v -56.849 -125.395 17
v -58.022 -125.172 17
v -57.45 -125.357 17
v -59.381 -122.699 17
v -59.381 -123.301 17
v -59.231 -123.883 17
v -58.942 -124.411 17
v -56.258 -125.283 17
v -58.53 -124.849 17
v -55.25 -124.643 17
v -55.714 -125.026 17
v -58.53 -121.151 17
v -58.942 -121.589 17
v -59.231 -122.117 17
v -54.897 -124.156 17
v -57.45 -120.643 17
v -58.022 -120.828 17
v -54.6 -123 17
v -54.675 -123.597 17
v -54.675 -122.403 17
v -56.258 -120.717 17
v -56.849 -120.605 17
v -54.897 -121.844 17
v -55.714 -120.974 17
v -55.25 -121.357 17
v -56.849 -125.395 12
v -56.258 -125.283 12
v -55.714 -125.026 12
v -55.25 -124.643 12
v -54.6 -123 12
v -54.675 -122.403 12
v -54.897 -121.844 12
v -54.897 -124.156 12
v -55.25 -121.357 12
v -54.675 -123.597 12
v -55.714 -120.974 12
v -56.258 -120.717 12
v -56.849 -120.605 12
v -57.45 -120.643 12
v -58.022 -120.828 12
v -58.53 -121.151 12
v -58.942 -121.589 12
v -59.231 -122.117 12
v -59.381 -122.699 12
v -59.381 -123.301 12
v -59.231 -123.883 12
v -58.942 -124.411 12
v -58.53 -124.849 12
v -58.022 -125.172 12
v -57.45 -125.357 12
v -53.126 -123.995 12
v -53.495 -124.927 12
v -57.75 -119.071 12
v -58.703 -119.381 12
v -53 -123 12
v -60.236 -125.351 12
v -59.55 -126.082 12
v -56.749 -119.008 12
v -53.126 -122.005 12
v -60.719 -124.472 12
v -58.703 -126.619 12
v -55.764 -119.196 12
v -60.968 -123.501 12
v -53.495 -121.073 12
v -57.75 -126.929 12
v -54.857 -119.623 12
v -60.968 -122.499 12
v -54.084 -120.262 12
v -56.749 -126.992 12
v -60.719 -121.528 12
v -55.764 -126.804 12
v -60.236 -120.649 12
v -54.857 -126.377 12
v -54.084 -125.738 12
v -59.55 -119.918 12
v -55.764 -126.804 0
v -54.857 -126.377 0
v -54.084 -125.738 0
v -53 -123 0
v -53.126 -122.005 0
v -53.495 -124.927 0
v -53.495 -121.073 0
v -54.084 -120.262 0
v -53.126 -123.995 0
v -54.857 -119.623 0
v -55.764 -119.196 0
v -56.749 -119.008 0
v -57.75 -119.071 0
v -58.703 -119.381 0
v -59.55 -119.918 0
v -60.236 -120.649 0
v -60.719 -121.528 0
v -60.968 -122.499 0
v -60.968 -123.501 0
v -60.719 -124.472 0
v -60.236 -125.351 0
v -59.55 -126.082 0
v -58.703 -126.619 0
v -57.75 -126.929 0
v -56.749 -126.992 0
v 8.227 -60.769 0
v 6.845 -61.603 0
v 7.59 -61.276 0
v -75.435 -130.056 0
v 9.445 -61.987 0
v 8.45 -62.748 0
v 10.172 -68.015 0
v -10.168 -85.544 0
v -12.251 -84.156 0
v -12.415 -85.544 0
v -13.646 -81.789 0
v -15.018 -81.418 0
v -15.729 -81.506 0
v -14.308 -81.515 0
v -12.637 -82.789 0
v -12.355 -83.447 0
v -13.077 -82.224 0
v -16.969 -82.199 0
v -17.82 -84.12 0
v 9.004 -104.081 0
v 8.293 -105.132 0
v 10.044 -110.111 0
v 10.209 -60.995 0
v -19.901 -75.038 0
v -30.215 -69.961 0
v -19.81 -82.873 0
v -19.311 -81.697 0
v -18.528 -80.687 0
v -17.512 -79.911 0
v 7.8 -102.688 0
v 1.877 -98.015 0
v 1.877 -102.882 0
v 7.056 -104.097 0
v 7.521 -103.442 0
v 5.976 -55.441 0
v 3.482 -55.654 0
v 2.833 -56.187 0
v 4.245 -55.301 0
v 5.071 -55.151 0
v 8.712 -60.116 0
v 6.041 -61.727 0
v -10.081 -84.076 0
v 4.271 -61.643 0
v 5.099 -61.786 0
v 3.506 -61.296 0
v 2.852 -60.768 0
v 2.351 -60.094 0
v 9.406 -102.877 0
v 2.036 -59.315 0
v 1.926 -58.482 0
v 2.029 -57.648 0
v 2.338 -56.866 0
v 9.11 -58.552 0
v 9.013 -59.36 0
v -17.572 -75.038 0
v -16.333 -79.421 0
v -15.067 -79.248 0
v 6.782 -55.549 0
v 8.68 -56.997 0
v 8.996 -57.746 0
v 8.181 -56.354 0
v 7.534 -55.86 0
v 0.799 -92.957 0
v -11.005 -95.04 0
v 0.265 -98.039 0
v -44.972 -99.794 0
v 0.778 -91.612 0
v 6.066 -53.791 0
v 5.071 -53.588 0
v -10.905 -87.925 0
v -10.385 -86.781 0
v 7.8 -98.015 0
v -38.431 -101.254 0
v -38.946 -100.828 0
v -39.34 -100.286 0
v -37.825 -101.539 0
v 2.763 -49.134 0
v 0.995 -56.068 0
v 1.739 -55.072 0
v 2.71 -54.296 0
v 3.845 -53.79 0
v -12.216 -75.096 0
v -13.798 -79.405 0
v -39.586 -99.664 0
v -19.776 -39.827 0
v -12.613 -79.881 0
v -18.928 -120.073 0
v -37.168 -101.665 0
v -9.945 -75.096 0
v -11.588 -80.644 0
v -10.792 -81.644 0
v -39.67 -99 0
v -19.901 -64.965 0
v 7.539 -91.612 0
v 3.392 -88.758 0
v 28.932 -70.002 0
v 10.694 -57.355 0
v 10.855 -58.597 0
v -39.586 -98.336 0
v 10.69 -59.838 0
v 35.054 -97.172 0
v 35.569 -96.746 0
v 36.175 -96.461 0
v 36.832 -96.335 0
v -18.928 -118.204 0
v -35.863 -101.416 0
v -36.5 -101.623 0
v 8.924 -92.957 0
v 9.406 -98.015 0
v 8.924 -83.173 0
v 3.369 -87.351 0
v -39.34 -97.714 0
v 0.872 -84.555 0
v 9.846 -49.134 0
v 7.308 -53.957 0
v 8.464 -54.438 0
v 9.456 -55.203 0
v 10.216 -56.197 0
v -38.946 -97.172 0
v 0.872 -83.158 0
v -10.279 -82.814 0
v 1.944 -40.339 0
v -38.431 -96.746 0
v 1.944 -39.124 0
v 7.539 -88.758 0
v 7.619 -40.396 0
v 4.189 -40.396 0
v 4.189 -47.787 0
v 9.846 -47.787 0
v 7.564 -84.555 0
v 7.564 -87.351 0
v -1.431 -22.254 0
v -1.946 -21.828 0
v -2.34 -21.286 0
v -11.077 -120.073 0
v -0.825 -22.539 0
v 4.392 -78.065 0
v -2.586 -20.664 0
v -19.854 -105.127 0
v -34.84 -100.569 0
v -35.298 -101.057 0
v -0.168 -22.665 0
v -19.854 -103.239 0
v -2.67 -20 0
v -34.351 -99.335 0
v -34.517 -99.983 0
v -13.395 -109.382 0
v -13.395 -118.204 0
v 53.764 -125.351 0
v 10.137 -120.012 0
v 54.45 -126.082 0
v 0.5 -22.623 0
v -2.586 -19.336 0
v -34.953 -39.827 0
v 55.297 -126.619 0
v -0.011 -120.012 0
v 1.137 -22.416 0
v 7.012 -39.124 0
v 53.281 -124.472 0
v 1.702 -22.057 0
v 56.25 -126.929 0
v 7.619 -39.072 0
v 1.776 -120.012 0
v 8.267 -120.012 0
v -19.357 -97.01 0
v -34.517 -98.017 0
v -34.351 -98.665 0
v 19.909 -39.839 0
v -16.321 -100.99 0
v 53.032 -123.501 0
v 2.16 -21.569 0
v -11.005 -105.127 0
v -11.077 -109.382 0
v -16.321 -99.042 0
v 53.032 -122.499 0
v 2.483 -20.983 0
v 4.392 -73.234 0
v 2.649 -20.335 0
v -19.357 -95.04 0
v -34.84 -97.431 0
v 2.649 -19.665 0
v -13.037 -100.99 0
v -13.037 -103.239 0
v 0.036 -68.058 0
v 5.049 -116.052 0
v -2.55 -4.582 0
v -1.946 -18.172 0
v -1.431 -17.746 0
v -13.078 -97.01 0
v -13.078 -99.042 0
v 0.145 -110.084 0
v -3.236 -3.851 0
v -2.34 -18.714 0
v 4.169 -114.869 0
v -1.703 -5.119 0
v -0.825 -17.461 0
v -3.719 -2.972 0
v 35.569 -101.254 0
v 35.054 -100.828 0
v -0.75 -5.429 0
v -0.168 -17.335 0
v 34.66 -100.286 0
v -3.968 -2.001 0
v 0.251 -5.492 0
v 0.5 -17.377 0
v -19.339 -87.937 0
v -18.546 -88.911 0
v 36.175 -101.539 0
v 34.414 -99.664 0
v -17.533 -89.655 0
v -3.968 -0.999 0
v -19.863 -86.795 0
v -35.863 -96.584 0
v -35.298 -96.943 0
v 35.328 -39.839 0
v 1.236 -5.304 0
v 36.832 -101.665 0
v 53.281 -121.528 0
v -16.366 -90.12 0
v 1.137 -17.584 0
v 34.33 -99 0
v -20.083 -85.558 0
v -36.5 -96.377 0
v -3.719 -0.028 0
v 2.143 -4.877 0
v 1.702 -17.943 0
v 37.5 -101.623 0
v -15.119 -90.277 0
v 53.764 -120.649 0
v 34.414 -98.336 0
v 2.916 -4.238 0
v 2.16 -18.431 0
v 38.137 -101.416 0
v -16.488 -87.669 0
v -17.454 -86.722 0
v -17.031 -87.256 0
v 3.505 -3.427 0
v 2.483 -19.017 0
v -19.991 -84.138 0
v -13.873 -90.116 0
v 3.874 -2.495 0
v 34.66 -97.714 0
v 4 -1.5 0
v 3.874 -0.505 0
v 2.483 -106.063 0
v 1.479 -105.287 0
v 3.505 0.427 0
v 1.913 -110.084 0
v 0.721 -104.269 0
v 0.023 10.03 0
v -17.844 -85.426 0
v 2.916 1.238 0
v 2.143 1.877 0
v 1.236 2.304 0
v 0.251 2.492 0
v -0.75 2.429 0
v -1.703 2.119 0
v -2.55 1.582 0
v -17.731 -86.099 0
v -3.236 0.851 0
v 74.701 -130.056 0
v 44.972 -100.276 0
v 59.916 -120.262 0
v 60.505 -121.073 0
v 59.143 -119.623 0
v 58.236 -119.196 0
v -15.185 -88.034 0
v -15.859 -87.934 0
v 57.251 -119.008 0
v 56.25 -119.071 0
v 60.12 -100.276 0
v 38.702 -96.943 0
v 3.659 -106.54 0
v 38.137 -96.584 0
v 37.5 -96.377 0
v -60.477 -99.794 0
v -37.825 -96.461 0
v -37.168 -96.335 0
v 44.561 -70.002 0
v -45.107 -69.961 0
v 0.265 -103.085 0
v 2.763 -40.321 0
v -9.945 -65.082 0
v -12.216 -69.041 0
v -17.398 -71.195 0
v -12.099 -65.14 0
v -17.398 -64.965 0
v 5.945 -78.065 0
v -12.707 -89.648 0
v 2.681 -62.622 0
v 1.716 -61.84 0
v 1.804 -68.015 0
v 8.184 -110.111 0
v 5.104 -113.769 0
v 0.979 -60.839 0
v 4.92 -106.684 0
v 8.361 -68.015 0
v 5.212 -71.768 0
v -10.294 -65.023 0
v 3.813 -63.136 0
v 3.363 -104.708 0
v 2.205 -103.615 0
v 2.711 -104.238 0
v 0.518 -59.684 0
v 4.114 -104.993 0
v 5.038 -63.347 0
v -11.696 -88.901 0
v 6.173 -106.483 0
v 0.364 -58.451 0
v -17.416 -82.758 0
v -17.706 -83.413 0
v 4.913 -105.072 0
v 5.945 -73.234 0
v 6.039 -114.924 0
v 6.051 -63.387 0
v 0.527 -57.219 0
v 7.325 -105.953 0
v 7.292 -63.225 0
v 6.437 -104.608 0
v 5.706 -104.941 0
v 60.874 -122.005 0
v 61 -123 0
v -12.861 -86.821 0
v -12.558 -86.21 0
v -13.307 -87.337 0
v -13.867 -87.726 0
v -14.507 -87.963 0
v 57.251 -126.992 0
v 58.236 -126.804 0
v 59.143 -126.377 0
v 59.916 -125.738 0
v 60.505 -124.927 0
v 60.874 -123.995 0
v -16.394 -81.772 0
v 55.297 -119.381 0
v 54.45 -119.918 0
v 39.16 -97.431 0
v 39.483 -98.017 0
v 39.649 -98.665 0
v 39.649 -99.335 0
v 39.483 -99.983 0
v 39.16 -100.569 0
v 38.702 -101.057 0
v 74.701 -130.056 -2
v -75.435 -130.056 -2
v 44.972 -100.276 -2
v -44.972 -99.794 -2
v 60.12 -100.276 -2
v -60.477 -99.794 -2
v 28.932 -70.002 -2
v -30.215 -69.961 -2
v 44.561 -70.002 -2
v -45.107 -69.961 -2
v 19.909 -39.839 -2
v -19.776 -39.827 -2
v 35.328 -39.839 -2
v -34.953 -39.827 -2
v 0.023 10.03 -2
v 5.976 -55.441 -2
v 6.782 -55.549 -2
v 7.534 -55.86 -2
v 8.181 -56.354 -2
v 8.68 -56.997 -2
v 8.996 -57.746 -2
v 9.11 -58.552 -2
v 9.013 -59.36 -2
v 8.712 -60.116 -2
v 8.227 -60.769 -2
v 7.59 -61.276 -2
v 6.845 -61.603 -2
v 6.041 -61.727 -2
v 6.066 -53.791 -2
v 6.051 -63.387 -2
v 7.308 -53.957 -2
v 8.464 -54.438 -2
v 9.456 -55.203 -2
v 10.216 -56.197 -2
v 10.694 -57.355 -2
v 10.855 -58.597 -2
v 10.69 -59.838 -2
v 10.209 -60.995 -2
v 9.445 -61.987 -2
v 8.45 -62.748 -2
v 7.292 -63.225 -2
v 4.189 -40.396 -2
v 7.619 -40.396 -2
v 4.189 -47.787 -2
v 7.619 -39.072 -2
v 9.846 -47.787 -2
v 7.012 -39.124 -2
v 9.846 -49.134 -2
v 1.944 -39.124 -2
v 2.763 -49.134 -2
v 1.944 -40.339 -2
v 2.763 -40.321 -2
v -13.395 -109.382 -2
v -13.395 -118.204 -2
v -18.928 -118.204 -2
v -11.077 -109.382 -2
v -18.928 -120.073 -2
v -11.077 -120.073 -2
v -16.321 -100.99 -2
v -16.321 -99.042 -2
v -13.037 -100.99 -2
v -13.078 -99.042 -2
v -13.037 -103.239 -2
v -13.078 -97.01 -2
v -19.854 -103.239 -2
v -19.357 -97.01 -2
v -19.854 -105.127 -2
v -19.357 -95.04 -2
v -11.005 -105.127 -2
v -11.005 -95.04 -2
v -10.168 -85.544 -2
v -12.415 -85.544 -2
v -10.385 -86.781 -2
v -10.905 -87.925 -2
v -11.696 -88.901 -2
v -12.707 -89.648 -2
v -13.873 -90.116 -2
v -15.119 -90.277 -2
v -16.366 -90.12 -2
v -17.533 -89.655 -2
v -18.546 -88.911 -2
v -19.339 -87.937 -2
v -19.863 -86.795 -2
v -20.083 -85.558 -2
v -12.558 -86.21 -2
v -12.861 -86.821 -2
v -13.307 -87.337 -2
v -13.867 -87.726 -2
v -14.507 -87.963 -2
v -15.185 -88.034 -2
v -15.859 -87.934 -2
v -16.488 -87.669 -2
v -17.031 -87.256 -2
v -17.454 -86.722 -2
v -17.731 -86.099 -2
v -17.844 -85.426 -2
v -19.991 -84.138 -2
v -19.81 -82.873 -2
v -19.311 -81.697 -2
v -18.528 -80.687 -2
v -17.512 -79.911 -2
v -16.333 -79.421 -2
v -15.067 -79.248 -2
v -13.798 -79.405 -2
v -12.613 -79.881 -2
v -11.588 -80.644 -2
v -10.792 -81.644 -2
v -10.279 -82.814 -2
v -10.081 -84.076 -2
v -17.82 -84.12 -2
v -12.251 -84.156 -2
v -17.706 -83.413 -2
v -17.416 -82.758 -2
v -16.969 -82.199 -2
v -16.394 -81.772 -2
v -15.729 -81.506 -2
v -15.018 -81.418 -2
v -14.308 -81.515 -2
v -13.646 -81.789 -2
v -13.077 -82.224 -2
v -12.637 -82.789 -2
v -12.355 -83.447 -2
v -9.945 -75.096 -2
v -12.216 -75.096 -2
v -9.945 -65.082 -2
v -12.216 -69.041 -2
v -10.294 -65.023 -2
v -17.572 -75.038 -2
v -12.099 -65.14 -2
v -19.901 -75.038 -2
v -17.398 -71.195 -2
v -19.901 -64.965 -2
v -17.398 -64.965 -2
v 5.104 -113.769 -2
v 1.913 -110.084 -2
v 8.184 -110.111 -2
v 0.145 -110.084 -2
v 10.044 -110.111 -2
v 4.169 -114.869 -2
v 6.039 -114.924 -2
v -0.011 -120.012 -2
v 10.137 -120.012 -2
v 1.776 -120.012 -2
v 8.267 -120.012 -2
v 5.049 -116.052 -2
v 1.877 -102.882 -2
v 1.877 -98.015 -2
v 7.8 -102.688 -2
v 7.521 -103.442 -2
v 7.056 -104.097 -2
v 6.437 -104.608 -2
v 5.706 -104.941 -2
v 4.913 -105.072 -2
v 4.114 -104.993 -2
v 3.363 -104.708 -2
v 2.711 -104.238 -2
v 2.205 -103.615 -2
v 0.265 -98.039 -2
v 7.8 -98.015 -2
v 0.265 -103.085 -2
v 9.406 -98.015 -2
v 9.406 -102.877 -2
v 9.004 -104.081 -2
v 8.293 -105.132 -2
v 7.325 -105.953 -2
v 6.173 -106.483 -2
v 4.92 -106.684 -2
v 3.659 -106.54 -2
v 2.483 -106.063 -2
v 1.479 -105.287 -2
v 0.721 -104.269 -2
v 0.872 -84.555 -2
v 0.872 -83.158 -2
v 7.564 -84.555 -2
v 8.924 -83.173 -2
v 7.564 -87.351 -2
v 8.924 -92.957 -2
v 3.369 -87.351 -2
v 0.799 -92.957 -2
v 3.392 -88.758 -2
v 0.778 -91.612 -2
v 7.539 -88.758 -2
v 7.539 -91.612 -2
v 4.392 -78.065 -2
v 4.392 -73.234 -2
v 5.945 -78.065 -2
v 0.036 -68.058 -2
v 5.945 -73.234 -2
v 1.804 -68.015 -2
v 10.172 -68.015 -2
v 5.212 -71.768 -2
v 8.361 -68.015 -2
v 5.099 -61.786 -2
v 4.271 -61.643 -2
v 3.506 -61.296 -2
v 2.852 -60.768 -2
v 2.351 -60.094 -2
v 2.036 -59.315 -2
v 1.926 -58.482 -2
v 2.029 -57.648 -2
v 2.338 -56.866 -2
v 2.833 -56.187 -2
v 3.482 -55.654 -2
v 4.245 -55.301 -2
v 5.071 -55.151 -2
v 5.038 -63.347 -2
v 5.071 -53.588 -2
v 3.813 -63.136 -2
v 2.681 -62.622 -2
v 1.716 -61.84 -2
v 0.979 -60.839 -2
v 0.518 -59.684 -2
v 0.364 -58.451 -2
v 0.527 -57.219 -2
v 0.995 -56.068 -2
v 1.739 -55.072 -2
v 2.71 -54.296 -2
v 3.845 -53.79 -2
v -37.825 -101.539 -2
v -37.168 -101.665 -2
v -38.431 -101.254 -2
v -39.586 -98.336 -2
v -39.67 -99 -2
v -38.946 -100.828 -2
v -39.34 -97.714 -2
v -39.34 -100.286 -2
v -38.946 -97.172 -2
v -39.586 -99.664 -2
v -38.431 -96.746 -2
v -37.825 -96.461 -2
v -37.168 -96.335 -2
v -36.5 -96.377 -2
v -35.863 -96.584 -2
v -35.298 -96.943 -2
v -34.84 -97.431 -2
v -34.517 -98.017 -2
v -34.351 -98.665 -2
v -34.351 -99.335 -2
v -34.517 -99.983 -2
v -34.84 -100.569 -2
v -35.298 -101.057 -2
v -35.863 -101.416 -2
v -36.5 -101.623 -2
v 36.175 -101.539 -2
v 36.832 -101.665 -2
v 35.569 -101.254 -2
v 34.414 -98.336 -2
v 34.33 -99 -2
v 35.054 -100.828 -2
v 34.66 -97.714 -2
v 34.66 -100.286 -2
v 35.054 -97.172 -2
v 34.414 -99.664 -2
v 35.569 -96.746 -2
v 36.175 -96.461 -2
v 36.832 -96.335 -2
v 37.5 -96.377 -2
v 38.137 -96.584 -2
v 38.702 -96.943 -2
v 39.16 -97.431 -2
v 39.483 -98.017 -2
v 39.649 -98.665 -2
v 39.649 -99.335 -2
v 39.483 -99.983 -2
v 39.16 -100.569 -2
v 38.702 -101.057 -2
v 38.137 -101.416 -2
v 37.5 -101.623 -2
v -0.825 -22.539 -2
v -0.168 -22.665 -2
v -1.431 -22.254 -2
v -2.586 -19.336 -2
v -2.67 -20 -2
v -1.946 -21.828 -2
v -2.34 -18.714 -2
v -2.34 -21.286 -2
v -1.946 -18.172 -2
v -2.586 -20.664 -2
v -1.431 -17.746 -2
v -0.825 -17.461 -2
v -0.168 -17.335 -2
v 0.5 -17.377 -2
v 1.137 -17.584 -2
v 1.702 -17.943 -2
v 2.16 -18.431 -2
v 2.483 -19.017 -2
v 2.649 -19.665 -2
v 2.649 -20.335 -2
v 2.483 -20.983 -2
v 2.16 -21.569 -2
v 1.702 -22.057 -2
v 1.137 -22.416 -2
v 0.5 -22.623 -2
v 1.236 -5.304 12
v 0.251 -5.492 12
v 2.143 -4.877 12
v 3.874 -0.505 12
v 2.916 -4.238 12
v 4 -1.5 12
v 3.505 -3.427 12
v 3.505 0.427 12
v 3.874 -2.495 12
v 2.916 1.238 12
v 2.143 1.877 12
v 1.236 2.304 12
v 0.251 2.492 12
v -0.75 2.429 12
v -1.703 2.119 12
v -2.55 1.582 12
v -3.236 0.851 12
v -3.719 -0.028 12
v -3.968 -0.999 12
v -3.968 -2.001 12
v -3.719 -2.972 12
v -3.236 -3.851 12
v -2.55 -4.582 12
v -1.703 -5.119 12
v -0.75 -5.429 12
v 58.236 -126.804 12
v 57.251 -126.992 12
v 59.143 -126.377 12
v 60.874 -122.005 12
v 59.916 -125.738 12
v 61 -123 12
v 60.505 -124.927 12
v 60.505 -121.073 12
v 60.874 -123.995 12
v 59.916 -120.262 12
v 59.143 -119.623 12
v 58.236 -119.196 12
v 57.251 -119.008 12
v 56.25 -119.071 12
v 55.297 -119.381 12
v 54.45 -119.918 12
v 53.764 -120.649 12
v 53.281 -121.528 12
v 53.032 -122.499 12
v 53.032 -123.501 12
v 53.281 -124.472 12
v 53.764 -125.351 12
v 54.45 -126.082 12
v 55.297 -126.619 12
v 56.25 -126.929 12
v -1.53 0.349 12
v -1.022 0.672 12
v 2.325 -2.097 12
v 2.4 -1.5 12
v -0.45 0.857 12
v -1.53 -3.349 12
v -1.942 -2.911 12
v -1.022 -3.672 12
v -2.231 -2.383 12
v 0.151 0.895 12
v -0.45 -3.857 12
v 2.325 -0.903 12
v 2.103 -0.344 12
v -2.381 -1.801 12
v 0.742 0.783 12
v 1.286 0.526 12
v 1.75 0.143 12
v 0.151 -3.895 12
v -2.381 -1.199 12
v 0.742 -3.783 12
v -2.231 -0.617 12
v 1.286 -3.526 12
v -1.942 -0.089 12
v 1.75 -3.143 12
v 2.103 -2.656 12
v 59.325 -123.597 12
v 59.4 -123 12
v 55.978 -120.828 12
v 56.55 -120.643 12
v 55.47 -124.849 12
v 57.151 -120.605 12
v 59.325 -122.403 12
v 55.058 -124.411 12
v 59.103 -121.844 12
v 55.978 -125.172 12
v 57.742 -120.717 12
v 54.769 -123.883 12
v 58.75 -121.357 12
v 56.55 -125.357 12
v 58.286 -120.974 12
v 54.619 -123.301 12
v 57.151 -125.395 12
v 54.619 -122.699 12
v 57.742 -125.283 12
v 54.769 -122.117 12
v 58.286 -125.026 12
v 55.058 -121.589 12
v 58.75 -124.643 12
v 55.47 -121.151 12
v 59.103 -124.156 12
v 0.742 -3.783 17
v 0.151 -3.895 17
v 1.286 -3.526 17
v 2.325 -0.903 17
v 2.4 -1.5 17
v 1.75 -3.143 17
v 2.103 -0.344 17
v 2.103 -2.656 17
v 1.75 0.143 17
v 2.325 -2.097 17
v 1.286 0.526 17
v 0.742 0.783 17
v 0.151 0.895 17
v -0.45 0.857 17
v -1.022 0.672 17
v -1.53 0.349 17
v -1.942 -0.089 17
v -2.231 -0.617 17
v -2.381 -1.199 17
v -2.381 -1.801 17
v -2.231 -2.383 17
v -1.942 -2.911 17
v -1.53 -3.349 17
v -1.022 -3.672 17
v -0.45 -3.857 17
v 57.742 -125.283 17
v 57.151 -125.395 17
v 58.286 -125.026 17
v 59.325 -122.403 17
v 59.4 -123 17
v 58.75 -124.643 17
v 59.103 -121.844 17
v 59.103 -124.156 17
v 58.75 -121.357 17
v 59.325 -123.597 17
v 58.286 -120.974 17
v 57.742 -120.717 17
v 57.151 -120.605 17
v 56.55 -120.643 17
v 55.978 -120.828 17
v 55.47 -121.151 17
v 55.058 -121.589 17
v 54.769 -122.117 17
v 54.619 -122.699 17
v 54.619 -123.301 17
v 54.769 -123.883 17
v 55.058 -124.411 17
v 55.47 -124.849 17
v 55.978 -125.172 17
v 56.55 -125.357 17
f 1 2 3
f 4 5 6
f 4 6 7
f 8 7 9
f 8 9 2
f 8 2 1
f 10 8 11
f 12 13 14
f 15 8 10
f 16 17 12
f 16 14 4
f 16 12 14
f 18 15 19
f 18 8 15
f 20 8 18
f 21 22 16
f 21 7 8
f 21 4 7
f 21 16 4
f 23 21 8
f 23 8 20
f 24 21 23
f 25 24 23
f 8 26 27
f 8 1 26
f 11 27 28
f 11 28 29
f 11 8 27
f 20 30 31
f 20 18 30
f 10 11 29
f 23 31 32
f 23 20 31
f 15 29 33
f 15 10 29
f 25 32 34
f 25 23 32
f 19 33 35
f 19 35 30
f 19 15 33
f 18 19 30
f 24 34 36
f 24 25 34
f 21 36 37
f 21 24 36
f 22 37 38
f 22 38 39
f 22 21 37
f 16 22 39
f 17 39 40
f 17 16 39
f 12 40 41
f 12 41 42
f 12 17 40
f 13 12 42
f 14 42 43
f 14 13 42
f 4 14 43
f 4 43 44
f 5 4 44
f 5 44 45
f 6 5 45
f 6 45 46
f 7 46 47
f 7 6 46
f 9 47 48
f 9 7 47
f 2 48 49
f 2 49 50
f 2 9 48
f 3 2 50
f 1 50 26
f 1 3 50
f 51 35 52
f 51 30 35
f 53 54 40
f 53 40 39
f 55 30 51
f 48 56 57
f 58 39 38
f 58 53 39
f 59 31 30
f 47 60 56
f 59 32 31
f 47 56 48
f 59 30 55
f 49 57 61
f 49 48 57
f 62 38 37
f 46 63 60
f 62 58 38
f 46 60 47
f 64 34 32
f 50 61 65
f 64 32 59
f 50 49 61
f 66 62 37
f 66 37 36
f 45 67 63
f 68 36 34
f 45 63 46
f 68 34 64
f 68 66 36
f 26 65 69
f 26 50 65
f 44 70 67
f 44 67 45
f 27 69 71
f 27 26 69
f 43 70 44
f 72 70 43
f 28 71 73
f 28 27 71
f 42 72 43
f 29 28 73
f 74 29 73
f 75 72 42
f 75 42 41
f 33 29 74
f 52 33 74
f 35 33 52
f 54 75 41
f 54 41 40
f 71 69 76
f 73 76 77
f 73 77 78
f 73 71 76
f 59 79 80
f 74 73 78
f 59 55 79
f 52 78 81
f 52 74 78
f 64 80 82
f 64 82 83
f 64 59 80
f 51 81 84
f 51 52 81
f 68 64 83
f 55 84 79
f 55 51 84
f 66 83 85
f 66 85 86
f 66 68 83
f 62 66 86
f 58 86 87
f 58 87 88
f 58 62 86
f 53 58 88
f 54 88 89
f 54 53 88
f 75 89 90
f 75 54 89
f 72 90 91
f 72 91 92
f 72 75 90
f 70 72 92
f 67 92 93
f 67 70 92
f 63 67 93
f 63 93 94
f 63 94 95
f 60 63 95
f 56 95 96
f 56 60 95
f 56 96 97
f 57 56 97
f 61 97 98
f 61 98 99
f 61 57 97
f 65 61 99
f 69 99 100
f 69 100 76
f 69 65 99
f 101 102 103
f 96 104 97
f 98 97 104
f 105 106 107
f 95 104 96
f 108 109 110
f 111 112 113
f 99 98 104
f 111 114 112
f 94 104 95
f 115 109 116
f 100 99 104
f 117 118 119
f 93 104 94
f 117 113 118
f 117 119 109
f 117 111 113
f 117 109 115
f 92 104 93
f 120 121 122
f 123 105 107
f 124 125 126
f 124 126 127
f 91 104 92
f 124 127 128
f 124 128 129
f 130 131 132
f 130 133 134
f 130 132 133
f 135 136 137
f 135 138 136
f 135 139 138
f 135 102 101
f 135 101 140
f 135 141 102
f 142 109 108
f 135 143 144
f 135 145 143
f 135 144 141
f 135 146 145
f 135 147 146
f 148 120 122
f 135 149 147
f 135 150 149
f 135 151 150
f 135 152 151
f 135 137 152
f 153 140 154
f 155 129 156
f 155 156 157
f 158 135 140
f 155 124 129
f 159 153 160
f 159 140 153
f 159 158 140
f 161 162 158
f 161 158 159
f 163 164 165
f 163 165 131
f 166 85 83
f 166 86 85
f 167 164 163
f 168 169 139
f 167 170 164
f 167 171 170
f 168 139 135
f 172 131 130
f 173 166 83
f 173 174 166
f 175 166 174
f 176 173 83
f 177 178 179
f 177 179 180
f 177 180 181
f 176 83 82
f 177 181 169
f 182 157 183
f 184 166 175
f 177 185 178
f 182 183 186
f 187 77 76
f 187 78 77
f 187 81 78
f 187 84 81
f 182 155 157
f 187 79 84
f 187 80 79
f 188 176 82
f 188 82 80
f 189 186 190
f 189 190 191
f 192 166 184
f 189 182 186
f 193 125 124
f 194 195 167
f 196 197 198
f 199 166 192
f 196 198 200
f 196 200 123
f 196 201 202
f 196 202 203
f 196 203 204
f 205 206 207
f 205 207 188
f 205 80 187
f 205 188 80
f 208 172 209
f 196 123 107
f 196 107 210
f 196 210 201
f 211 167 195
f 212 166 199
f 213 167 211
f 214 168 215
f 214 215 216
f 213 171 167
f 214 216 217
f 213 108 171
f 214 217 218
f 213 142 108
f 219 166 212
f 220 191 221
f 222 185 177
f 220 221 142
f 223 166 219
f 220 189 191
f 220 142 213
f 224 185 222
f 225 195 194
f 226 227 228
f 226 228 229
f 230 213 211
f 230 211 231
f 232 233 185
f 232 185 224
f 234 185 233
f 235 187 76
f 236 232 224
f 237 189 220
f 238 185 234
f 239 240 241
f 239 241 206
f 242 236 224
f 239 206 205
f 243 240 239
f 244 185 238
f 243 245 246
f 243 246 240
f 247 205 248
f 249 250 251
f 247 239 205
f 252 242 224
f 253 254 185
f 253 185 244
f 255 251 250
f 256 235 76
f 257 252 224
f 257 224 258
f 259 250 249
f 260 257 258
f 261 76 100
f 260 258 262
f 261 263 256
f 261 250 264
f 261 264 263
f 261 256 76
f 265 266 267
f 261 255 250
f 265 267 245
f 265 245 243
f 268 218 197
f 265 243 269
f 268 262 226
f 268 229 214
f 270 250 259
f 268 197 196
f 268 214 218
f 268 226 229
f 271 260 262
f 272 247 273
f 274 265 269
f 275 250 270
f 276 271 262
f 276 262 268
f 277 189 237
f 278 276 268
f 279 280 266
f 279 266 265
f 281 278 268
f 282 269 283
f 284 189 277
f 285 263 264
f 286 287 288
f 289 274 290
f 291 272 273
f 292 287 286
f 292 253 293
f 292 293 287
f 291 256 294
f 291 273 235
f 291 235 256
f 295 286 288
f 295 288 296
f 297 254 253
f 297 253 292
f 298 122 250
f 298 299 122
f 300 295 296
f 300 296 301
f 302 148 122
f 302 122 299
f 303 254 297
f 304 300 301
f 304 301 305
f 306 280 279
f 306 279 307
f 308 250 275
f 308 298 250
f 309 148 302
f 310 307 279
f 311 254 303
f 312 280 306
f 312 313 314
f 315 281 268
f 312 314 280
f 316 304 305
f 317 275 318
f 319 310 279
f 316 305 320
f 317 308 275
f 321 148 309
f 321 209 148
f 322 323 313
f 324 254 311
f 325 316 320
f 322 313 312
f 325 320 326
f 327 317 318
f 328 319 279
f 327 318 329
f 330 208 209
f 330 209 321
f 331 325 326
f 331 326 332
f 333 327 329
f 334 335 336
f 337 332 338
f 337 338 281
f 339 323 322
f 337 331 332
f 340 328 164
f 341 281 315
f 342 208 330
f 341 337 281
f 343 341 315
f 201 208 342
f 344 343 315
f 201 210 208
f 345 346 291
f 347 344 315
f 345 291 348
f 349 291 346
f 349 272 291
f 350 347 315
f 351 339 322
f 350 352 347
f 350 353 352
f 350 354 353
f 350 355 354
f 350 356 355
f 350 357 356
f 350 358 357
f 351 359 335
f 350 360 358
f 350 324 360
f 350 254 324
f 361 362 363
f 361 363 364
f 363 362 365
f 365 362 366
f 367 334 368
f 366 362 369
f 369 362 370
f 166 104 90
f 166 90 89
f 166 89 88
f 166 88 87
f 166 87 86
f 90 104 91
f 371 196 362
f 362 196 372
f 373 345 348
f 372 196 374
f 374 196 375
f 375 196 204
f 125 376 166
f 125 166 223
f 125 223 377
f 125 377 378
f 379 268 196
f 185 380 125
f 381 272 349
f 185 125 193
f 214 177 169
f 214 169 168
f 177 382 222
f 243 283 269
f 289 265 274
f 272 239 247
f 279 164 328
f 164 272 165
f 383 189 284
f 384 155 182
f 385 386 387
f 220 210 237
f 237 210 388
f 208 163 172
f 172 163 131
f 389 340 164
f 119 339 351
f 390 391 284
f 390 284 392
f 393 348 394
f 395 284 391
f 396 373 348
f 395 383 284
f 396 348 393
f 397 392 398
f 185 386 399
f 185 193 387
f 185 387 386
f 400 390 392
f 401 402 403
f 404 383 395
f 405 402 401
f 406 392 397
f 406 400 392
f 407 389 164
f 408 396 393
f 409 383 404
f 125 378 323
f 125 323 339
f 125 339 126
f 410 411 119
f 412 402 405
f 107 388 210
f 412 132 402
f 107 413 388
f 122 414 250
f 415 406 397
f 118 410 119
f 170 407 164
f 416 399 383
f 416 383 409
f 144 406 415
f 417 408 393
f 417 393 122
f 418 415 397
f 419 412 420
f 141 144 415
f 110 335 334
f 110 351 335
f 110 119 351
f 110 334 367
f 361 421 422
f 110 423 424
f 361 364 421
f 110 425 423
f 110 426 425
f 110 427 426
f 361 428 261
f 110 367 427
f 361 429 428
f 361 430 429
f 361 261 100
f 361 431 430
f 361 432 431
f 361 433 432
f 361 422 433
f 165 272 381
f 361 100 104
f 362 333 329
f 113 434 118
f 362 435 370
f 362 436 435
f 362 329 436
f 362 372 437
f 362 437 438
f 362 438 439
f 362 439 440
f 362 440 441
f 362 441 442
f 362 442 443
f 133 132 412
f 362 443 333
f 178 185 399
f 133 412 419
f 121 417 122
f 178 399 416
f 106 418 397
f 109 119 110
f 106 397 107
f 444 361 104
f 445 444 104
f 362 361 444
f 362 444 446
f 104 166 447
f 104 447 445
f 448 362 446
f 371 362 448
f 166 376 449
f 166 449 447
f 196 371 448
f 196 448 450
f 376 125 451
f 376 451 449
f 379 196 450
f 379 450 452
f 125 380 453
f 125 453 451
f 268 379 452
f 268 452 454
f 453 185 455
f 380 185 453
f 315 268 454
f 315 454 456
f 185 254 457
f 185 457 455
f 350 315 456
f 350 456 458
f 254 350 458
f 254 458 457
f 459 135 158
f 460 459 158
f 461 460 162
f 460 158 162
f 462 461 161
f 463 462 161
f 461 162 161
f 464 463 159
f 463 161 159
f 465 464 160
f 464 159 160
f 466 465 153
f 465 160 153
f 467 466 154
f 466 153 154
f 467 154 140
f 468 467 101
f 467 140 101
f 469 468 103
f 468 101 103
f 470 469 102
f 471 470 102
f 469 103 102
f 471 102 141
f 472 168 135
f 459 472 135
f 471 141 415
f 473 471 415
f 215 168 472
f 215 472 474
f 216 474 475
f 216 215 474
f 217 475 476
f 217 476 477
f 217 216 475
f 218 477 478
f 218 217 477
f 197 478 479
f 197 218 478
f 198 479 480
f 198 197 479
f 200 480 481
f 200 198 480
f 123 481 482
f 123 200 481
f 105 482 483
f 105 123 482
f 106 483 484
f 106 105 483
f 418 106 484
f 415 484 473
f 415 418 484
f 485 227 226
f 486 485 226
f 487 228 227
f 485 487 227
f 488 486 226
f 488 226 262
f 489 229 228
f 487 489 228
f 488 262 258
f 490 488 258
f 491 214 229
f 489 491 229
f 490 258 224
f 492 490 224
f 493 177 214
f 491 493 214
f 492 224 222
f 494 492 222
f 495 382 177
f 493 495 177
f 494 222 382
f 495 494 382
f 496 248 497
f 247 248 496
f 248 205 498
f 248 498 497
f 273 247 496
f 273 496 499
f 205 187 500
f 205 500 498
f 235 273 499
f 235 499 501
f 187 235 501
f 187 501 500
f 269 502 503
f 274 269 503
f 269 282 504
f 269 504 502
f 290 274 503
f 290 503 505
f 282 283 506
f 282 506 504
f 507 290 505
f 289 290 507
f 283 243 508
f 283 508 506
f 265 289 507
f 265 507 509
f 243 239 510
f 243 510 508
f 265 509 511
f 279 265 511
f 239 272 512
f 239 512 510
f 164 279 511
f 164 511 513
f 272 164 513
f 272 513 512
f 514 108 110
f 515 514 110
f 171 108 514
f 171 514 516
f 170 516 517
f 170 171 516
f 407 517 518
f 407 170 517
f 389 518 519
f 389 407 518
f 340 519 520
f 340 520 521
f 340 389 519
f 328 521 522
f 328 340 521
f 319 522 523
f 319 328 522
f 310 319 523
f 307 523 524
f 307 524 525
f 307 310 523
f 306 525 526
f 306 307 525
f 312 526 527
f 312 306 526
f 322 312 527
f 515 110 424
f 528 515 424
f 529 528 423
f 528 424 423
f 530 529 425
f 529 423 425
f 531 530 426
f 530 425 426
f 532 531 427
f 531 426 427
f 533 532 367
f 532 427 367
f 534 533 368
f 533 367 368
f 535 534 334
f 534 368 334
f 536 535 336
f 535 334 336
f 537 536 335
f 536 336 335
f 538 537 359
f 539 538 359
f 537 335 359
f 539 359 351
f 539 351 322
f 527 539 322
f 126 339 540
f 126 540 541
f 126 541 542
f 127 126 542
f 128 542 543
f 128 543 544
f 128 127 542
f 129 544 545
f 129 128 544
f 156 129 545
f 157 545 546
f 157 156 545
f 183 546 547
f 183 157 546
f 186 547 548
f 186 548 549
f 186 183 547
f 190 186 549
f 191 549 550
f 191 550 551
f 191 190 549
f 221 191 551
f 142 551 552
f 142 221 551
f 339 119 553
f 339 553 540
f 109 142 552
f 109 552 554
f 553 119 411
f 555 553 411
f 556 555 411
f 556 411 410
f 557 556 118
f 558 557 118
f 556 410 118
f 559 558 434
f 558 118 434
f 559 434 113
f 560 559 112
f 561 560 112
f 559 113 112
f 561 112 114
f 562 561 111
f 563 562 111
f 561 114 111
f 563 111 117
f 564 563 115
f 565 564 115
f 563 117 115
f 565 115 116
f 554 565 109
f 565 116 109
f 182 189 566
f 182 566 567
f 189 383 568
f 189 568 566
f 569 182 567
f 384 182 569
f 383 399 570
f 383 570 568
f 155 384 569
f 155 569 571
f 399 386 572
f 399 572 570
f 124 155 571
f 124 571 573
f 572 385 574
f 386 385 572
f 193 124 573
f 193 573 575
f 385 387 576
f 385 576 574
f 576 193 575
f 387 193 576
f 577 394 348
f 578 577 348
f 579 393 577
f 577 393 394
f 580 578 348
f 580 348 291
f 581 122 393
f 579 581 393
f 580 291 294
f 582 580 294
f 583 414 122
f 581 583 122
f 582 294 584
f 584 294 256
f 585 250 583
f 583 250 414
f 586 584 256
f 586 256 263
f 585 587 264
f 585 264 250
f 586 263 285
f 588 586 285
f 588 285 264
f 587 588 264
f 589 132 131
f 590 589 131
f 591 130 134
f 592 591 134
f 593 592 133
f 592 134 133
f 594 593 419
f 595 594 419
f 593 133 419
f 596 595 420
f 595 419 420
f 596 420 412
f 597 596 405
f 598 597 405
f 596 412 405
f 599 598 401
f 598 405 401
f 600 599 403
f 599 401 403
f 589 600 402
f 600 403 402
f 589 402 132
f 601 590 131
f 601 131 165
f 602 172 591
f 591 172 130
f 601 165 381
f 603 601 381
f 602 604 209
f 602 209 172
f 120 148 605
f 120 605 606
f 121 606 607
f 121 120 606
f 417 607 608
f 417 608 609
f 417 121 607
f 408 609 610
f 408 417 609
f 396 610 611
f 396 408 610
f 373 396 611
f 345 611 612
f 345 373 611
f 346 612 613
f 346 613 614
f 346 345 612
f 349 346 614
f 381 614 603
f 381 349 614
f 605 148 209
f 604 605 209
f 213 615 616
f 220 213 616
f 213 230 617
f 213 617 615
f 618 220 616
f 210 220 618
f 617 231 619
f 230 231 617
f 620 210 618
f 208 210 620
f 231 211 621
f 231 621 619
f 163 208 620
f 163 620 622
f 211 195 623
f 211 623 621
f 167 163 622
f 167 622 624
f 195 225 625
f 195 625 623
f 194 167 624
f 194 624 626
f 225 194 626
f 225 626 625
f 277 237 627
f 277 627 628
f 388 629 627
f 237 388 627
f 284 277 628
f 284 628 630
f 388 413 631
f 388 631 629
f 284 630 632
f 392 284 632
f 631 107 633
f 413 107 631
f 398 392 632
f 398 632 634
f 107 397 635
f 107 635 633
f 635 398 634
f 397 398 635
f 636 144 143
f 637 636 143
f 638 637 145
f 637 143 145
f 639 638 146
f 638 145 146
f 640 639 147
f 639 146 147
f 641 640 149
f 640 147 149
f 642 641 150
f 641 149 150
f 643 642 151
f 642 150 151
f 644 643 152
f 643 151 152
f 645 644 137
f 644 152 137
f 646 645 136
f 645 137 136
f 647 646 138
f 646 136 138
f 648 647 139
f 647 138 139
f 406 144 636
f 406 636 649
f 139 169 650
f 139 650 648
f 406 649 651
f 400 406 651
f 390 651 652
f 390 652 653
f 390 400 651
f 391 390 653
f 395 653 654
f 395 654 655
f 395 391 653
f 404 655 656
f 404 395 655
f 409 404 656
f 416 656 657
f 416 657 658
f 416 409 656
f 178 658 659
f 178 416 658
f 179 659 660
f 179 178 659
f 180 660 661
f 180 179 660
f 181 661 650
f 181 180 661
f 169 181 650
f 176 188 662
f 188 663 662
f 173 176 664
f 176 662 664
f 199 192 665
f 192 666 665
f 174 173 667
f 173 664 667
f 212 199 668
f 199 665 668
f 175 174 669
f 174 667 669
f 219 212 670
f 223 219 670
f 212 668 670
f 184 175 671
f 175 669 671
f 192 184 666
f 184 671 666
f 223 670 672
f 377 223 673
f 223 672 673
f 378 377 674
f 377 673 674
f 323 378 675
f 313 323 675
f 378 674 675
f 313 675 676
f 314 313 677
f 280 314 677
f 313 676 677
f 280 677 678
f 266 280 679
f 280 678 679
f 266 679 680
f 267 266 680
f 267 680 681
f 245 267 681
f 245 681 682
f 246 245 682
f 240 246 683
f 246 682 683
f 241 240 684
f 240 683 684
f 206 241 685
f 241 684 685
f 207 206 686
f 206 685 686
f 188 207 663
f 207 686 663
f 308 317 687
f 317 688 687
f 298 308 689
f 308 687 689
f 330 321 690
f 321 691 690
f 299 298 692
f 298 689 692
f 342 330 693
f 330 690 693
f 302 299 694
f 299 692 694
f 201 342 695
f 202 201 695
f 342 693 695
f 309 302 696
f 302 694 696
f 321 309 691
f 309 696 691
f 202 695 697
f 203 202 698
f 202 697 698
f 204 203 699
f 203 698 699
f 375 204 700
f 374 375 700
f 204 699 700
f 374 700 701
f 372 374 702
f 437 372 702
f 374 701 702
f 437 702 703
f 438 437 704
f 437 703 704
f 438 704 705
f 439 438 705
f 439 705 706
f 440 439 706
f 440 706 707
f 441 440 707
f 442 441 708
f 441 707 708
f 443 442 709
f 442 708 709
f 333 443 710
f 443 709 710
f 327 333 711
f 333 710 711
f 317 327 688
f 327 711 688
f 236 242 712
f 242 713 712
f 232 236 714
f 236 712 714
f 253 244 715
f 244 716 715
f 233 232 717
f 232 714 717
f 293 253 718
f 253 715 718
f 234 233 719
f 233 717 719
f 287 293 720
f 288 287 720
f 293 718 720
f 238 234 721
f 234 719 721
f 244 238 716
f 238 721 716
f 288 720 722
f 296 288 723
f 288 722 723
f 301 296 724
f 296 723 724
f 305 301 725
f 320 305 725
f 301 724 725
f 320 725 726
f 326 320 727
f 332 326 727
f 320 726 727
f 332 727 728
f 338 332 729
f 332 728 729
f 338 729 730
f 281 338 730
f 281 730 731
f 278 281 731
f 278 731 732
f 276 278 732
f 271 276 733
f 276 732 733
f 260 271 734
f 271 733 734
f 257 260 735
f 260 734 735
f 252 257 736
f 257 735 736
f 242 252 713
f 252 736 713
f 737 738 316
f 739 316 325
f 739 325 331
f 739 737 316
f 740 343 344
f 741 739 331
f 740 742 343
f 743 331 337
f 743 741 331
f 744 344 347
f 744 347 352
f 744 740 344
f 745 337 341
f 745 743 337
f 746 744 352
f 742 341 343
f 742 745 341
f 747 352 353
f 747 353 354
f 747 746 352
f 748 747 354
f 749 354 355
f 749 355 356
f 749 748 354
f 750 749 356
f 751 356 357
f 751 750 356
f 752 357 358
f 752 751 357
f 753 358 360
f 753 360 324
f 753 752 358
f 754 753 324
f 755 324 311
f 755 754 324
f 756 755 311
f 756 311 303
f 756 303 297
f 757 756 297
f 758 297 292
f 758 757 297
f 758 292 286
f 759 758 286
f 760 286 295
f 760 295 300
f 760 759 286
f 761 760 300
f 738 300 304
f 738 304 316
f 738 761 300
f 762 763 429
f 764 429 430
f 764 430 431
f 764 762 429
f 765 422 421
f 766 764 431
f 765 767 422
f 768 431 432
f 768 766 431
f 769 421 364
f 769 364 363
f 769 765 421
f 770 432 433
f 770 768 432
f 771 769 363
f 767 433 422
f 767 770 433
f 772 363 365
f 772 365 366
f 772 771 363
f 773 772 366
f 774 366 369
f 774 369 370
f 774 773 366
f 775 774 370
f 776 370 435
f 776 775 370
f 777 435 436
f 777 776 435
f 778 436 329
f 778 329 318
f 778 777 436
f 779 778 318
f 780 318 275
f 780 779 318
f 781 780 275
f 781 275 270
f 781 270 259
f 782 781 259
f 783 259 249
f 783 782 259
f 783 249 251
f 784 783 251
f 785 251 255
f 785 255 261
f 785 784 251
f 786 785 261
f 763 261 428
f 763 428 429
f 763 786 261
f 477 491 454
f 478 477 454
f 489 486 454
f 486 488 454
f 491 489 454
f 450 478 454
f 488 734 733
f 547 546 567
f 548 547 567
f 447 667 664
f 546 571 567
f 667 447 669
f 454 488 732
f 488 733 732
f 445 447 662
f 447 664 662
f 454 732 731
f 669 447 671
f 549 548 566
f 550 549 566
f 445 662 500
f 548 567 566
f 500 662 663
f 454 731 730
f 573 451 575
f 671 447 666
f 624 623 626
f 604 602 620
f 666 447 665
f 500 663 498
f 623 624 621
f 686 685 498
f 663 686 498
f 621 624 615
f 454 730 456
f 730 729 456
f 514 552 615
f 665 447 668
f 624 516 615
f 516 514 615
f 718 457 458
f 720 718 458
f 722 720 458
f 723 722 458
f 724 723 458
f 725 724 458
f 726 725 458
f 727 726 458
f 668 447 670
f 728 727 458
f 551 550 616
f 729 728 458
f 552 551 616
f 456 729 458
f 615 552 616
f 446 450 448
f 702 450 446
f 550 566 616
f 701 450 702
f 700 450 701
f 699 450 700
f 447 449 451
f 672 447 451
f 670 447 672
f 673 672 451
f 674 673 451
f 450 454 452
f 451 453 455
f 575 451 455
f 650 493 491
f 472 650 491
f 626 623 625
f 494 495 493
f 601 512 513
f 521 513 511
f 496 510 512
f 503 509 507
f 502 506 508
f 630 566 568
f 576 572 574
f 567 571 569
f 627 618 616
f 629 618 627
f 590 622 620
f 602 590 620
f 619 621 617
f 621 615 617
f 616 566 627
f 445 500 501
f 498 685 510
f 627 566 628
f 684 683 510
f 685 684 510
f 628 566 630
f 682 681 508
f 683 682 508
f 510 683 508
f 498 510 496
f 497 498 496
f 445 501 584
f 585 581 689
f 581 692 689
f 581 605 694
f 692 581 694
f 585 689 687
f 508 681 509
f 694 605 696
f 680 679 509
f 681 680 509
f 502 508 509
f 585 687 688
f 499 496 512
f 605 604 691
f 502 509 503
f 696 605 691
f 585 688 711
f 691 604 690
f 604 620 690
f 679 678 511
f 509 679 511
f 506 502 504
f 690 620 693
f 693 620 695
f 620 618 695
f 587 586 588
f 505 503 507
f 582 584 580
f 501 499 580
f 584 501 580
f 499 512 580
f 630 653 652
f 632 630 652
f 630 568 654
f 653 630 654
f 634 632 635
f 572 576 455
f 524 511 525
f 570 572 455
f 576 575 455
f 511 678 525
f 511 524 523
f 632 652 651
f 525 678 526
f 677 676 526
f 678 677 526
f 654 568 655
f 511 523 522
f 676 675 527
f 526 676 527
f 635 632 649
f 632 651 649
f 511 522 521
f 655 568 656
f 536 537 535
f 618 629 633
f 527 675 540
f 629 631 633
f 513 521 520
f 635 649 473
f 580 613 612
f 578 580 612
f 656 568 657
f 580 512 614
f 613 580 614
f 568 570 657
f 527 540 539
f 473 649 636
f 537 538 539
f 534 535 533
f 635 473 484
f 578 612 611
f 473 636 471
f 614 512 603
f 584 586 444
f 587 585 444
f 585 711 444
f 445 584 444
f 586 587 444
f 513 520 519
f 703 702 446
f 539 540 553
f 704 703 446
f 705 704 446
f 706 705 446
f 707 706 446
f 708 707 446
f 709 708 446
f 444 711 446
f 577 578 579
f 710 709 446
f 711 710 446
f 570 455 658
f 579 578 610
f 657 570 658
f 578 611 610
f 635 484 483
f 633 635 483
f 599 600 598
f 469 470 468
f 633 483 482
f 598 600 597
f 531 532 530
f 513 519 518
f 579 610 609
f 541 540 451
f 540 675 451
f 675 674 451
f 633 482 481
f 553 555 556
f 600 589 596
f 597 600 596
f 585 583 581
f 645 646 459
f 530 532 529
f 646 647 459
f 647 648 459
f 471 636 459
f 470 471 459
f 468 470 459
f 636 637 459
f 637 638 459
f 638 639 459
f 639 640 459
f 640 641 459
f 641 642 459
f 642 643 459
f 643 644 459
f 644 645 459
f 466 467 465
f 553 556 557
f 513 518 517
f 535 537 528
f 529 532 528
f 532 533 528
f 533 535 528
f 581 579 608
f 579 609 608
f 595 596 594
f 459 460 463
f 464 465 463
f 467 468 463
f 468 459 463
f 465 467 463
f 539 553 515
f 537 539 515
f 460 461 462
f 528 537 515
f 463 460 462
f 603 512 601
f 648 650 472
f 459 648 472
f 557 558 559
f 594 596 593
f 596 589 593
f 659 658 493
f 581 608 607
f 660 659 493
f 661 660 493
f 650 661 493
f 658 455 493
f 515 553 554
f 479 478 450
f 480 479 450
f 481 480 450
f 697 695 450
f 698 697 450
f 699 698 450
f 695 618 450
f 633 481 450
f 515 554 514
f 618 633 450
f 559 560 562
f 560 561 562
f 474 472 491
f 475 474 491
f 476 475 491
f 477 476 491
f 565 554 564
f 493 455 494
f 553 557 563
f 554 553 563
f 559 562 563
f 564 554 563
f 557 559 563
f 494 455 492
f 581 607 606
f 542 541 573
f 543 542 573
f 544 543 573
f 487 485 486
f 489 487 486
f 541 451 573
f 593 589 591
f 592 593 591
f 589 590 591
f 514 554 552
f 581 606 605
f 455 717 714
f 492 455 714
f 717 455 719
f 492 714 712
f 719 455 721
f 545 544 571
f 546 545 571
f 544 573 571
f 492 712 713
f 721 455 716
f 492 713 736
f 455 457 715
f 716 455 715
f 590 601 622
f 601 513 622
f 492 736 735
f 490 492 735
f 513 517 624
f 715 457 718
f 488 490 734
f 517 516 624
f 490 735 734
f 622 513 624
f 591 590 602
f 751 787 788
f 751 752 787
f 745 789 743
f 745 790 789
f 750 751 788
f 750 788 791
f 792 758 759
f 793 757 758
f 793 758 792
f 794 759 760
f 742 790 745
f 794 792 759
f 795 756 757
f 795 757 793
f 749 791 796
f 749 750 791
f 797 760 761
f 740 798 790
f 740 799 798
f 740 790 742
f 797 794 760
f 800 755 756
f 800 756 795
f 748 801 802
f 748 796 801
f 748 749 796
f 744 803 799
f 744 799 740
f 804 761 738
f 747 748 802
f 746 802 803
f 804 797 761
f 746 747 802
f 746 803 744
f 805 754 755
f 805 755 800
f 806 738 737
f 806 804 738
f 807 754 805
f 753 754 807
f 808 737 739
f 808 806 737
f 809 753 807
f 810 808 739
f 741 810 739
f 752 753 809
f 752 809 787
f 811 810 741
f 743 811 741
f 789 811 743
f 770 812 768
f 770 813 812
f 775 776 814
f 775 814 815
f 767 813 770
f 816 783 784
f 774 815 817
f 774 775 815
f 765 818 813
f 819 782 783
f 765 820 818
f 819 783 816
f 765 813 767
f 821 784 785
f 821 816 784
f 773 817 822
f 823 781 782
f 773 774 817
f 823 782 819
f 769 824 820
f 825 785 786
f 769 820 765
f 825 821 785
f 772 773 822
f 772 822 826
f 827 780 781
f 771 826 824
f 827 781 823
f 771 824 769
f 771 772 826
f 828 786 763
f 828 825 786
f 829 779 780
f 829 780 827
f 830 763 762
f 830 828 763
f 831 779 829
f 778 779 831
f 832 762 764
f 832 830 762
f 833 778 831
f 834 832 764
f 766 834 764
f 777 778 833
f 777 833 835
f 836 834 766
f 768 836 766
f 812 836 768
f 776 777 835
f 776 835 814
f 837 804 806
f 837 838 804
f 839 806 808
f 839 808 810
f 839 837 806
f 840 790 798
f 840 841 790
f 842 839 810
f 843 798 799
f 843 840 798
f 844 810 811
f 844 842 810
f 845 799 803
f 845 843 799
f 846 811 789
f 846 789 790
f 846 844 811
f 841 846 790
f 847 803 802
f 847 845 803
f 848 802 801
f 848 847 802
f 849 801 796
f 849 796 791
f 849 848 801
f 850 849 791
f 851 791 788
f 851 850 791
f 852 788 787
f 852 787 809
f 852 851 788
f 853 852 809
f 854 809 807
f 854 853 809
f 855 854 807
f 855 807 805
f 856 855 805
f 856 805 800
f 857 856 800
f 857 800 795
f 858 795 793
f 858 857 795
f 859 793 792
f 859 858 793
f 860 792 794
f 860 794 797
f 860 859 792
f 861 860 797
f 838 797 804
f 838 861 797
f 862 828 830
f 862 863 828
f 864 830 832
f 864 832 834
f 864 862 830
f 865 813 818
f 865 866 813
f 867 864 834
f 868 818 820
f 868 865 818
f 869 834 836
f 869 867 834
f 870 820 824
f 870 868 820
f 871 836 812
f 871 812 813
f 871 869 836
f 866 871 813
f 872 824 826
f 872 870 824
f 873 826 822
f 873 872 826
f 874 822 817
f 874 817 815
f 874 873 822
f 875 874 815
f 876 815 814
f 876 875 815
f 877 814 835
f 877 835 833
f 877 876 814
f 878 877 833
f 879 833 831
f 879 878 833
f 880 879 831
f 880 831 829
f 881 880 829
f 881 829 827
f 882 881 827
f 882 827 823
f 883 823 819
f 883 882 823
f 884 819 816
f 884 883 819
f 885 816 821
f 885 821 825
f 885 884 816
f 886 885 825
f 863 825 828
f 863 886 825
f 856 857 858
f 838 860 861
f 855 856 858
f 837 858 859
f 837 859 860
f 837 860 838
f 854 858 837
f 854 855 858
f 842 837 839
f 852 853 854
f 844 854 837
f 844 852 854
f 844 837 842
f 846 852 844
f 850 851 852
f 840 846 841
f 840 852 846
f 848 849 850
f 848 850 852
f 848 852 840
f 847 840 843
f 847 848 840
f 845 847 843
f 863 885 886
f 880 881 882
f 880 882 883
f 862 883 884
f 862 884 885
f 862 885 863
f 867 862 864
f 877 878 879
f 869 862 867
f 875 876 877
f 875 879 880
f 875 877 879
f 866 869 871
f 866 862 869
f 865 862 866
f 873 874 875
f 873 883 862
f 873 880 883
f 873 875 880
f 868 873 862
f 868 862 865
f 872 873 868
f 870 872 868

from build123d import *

# Parameters (mm, degrees)
CYLINDER006_R          = 2.4
CYLINDER006_DEPTH      = 7
CYLINDER004_R          = 4
CYLINDER004_DEPTH      = 12
CYLINDER007_R          = 2.4
CYLINDER007_DEPTH      = 7
CYLINDER005_R          = 4
CYLINDER005_DEPTH      = 12
CYLINDER_R             = 2.67
CYLINDER_DEPTH         = 2
CYLINDER001_R          = 2.67
CYLINDER001_DEPTH      = 2
CYLINDER002_R          = 2.67
CYLINDER002_DEPTH      = 2
PAD005_DEPTH           = 2
PAD006_DEPTH           = 2
PAD007_DEPTH           = 2
PAD008_DEPTH           = 2
PAD009_DEPTH           = 2
PAD010_DEPTH           = 2
PAD011_DEPTH           = 2
PAD013_DEPTH           = 2
PAD014_DEPTH           = 2
PAD015_DEPTH           = 2
PAD001_DEPTH           = 2
PAD004_DEPTH           = 2
PAD_DEPTH              = 2
CUT014_PLACEMENT_ANGLE = 180
CYLINDER003_R          = 4
CYLINDER003_DEPTH      = 12
CYLINDER008_R          = 2.4
CYLINDER008_DEPTH      = 7


with BuildPart() as cylindre006:
    # Cylinder006 → Cylinder006 (new body)
    with BuildSketch(Plane.XY.offset(10)):
        Circle(CYLINDER006_R)
    extrude(amount=CYLINDER006_DEPTH)


with BuildPart() as fixdroite:
    # Cylinder004 → Cylinder004 (new body)
    with BuildSketch(Plane.XY):
        Circle(CYLINDER004_R)
    extrude(amount=CYLINDER004_DEPTH)

    # Fusion001: union Cylindre006
    add(cylindre006.part)


with BuildPart() as fixdroite_1:
    # Fusion001 placement: moved
    add(fixdroite.part.moved(Location((57, -123, 0))))


with BuildPart() as cylindre007:
    # Cylinder007 → Cylinder007 (new body)
    with BuildSketch(Plane.XY.offset(10)):
        Circle(CYLINDER007_R)
    extrude(amount=CYLINDER007_DEPTH)


with BuildPart() as fixhaut:
    # Cylinder005 → Cylinder005 (new body)
    with BuildSketch(Plane.XY):
        Circle(CYLINDER005_R)
    extrude(amount=CYLINDER005_DEPTH)

    # Fusion002: union Cylindre007
    add(cylindre007.part)


with BuildPart() as fixhaut_1:
    # Fusion002 placement: moved
    add(fixhaut.part.moved(Location((0, -1.5, 0))))


with BuildPart() as ledh:
    # Cylinder → Cylinder (new body)
    with BuildSketch(Plane(origin=(0, -20, 0), x_dir=(1, 0, 0), z_dir=(0, 0, 1))):
        Circle(CYLINDER_R)
    extrude(amount=CYLINDER_DEPTH)


with BuildPart() as ledg:
    # Cylinder001 → Cylinder001 (new body)
    with BuildSketch(Plane(origin=(-37, -99, 0), x_dir=(1, 0, 0), z_dir=(0, 0, 1))):
        Circle(CYLINDER001_R)
    extrude(amount=CYLINDER001_DEPTH)


with BuildPart() as ledd:
    # Cylinder002 → Cylinder002 (new body)
    with BuildSketch(Plane(origin=(37, -99, 0), x_dir=(1, 0, 0), z_dir=(0, 0, 1))):
        Circle(CYLINDER002_R)
    extrude(amount=CYLINDER002_DEPTH)


with BuildPart() as pad005:
    # Sketch003 → Pad005 (new body)
    with BuildSketch(Plane(origin=(11, -73, 0), x_dir=(1, 0, 0), z_dir=(0, 0, 1))):
        with BuildLine():
            ThreePointArc((-16.037963, 9.653341), (-11.364469, 14.54891), (-16.07126, 19.412473))
            Line((-16.07126, 19.412473), (-16.07126, 17.849285))
            ThreePointArc((-16.099219, 11.213839), (-12.926154, 14.518251), (-16.07126, 17.849285))
            Line((-16.099219, 11.213839), (-16.037963, 9.653341))
        make_face()
    extrude(amount=PAD005_DEPTH)


with BuildPart() as pad006:
    # Sketch004 → Pad006 (new body)
    with BuildSketch(Plane(origin=(50, -28, 0), x_dir=(1, 0, 0), z_dir=(0, 0, 1))):
        Polygon((-60.172302, -40.014927), (-55.94516, -45.234154), (-55.94516, -50.065174), (-54.392334, -50.065174), (-54.392334, -45.234154), (-50.035789, -40.058064), (-51.804287, -40.014927), (-55.211884, -43.767593), (-58.360672, -40.014927), align=None)
    extrude(amount=PAD006_DEPTH)


with BuildPart() as pad007:
    # Sketch005 → Pad007 (new body)
    with BuildSketch(Plane(origin=(51, -113, 0), x_dir=(1, 0, 0), z_dir=(0, 0, 1))):
        Polygon((-59.924492, 29.827353), (-59.924492, 20.043087), (-51.799427, 20.043087), (-51.778122, 21.388154), (-58.539266, 21.388154), (-58.539266, 24.241791), (-54.392208, 24.241791), (-54.368668, 25.648745), (-58.563912, 25.648742), (-58.563912, 28.444752), (-51.871914, 28.444752), (-51.871914, 29.842251), align=None)
    extrude(amount=PAD007_DEPTH)


with BuildPart() as pad008:
    # Sketch006 → Pad008 (new body)
    with BuildSketch(Plane(origin=(40, -88, 0), x_dir=(1, 0, 0), z_dir=(0, 0, 1))):
        with BuildLine():
            ThreePointArc((-49.406039, -14.877108), (-44.91958, -18.684082), (-40.264656, -15.085049))
            Line((-40.264656, -10.039436), (-40.264656, -15.085049))
            Line((-41.877358, -10.014557), (-40.264656, -10.039436))
            Line((-41.877358, -14.88168), (-41.877358, -10.014557))
            ThreePointArc((-47.799763, -14.688175), (-44.913294, -17.072215), (-41.877358, -14.88168))
            Line((-47.799763, -10.014557), (-47.799763, -14.688175))
            Line((-49.406039, -10.014557), (-47.799763, -10.014557))
            Line((-49.406039, -14.877108), (-49.406039, -10.014557))
        make_face()
    extrude(amount=PAD008_DEPTH)


with BuildPart() as pad009:
    # Sketch007 → Pad009 (new body)
    with BuildSketch(Plane(origin=(40, -100, 0), x_dir=(1, 0, 0), z_dir=(0, 0, 1))):
        Polygon((-50.044407, -10.111172), (-48.184219, -10.111172), (-45.103821, -13.769145), (-41.913406, -10.083668), (-40.145214, -10.083668), (-44.168697, -14.869287), (-39.989098, -20.012453), (-41.77589, -20.012453), (-45.048813, -16.051941), (-48.266731, -20.012453), (-50.136971, -20.012453), (-46.03894, -14.924294), align=None)
    extrude(amount=PAD009_DEPTH)


with BuildPart() as pad010:
    # Sketch008 → Pad010 (new body)
    with BuildSketch(Plane(origin=(-50, -55, 0), x_dir=(1, 0, 0), z_dir=(0, 0, 1))):
        Polygon((59.944996, -10.081698), (59.944996, -20.096376), (62.215767, -20.096376), (62.215767, -14.04099), (67.572456, -20.038153), (69.901451, -20.038153), (69.901451, -9.965249), (67.397781, -9.965249), (67.397781, -16.195311), (62.099316, -10.139923), (60.294342, -10.023474), align=None)
    extrude(amount=PAD010_DEPTH)


with BuildPart() as pad011:
    # Sketch009 → Pad011 (new body)
    with BuildSketch(Plane(origin=(-50, -49, 0), x_dir=(1, 0, 0), z_dir=(0, 0, 1))):
        with BuildLine():
            ThreePointArc((69.990994, -35.138157), (65.066559, -30.24793), (60.081311, -35.076147))
            Line((60.081311, -35.076147), (62.25066, -35.155739))
            ThreePointArc((67.819598, -35.120229), (65.017788, -32.418467), (62.25066, -35.155739))
            Line((67.819598, -35.120229), (69.990994, -35.138157))
        make_face()
    extrude(amount=PAD011_DEPTH)


with BuildPart() as pad013:
    # Sketch010 → Pad013 (new body)
    with BuildSketch(Plane(origin=(-50, -50, 0), x_dir=(1, 0, 0), z_dir=(0, 0, 1))):
        with BuildLine():
            ThreePointArc((60.168351, -35.543583), (65.118967, -40.276993), (70.083354, -35.558027))
            Line((67.844375, -35.426405), (70.083354, -35.558027))
            ThreePointArc((62.41541, -35.543583), (65.184903, -38.033705), (67.844375, -35.426405))
            Line((60.168351, -35.543583), (62.41541, -35.543583))
        make_face()
    extrude(amount=PAD013_DEPTH)


with BuildPart() as pad014:
    # Sketch011 → Pad014 (new body)
    with BuildSketch(Plane(origin=(-49, -45, 0), x_dir=(1, 0, 0), z_dir=(0, 0, 1))):
        Polygon((60.004894, -50.040436), (60.004894, -60.12682), (68.854347, -60.12682), (68.854347, -58.239292), (62.037025, -58.239292), (62.037025, -55.989849), (65.320709, -55.989849), (65.320709, -54.042088), (62.078052, -54.042088), (62.078052, -52.009895), (68.356964, -52.009895), (68.356964, -50.040436), align=None)
    extrude(amount=PAD014_DEPTH)


with BuildPart() as pad015:
    # Sketch012 → Pad015 (new body)
    with BuildSketch(Plane(origin=(-59, -10, 0), x_dir=(1, 0, 0), z_dir=(0, 0, 1))):
        Polygon((70.077477, -99.382187), (70.077477, -110.073188), (77.927521, -110.073188), (77.927521, -108.204124), (72.395118, -108.204124), (72.395118, -99.382187), align=None)
    extrude(amount=PAD015_DEPTH)


with BuildPart() as pad001:
    # Sketch001 → Pad001 (new body)
    with BuildSketch(Plane(origin=(24, -79, 0), x_dir=(1, 0, 0), z_dir=(0, 0, 1))):
        Polygon((-31.011786, 39.876404), (-25.943949, 39.876404), (-25.943949, 38.661366), (-26.762781, 38.678547), (-26.762781, 29.865536), (-33.84618, 29.865536), (-33.84618, 31.212646), (-28.189131, 31.212646), (-28.189131, 38.604298), (-31.618616, 38.604298), (-31.618616, 39.928497), align=None)
    extrude(amount=PAD001_DEPTH)


with BuildPart() as pad004:
    # Sketch002 → Pad004 (new body)
    with BuildSketch(Plane(origin=(23, -75, 0), x_dir=(1, 0, 0), z_dir=(0, 0, 1))):
        with BuildLine():
            ThreePointArc((-29.06636, 21.208672), (-33.855078, 16.402926), (-29.050702, 11.612834))
            Line((-29.040989, 13.272719), (-29.050702, 11.612834))
            ThreePointArc((-28.975843, 19.558972), (-32.109932, 16.447987), (-29.040989, 13.272719))
            Line((-29.06636, 21.208672), (-28.975843, 19.558972))
        make_face()
    extrude(amount=PAD004_DEPTH)


with BuildPart() as cut014:
    # Sketch → Pad (new body)
    with BuildSketch(Plane(origin=(0, 0, 0), x_dir=(0, 1, 0), z_dir=(0, 0, 1))):
        Polygon((-130.055618, 74.700851), (-130.055618, -75.434654), (-99.793674, -44.971566), (-99.793674, -60.477265), (-69.960533, -30.215105), (-69.960533, -45.106522), (-39.827045, -19.776331), (-39.827045, -34.952637), (10.030094, 0.023063), (-39.838676, 35.327641), (-39.838676, 19.908756), (-70.002281, 44.561149), (-70.002281, 28.932402), (-100.276372, 60.120483), (-100.276372, 44.971665), align=None)
    extrude(amount=PAD_DEPTH)

    # Cut001: cut Pad004
    add(pad004.part, mode=Mode.SUBTRACT)

    # Cut: cut Pad001
    add(pad001.part, mode=Mode.SUBTRACT)

    # Cut002: cut Pad015
    add(pad015.part, mode=Mode.SUBTRACT)

    # Cut003: cut Pad014
    add(pad014.part, mode=Mode.SUBTRACT)

    # Cut004: cut Pad013
    add(pad013.part, mode=Mode.SUBTRACT)

    # Cut005: cut Pad011
    add(pad011.part, mode=Mode.SUBTRACT)

    # Cut006: cut Pad010
    add(pad010.part, mode=Mode.SUBTRACT)

    # Cut007: cut Pad009
    add(pad009.part, mode=Mode.SUBTRACT)

    # Cut008: cut Pad008
    add(pad008.part, mode=Mode.SUBTRACT)

    # Cut009: cut Pad007
    add(pad007.part, mode=Mode.SUBTRACT)

    # Cut010: cut Pad006
    add(pad006.part, mode=Mode.SUBTRACT)

    # Cut011: cut Pad005
    add(pad005.part, mode=Mode.SUBTRACT)

    # Cut012: cut LedD
    add(ledd.part, mode=Mode.SUBTRACT)

    # Cut013: cut ledG
    add(ledg.part, mode=Mode.SUBTRACT)

    # Cut014: cut LedH
    add(ledh.part, mode=Mode.SUBTRACT)


with BuildPart() as cut014_1:
    # Cut014 placement: moved
    add(cut014.part.rotate(Axis((0, 0, 0), (0, 1, 0)), CUT014_PLACEMENT_ANGLE))


with BuildPart() as cylindre003:
    # Cylinder003 → Cylinder003 (new body)
    with BuildSketch(Plane.XY):
        Circle(CYLINDER003_R)
    extrude(amount=CYLINDER003_DEPTH)


with BuildPart() as fusion005:
    # Cylinder008 → Cylinder008 (new body)
    with BuildSketch(Plane.XY.offset(10)):
        Circle(CYLINDER008_R)
    extrude(amount=CYLINDER008_DEPTH)

    # Fusion: union Cylindre003
    add(cylindre003.part)


with BuildPart() as fusion005_1:
    # Fusion placement: moved
    add(fusion005.part.moved(Location((-57, -123, 0))))

    # Fusion003: union Cut014
    add(cut014_1.part)

    # Fusion004: union FixHaut
    add(fixhaut_1.part)

    # Fusion005: union FixDroite
    add(fixdroite_1.part)


solid = fusion005_1.part
